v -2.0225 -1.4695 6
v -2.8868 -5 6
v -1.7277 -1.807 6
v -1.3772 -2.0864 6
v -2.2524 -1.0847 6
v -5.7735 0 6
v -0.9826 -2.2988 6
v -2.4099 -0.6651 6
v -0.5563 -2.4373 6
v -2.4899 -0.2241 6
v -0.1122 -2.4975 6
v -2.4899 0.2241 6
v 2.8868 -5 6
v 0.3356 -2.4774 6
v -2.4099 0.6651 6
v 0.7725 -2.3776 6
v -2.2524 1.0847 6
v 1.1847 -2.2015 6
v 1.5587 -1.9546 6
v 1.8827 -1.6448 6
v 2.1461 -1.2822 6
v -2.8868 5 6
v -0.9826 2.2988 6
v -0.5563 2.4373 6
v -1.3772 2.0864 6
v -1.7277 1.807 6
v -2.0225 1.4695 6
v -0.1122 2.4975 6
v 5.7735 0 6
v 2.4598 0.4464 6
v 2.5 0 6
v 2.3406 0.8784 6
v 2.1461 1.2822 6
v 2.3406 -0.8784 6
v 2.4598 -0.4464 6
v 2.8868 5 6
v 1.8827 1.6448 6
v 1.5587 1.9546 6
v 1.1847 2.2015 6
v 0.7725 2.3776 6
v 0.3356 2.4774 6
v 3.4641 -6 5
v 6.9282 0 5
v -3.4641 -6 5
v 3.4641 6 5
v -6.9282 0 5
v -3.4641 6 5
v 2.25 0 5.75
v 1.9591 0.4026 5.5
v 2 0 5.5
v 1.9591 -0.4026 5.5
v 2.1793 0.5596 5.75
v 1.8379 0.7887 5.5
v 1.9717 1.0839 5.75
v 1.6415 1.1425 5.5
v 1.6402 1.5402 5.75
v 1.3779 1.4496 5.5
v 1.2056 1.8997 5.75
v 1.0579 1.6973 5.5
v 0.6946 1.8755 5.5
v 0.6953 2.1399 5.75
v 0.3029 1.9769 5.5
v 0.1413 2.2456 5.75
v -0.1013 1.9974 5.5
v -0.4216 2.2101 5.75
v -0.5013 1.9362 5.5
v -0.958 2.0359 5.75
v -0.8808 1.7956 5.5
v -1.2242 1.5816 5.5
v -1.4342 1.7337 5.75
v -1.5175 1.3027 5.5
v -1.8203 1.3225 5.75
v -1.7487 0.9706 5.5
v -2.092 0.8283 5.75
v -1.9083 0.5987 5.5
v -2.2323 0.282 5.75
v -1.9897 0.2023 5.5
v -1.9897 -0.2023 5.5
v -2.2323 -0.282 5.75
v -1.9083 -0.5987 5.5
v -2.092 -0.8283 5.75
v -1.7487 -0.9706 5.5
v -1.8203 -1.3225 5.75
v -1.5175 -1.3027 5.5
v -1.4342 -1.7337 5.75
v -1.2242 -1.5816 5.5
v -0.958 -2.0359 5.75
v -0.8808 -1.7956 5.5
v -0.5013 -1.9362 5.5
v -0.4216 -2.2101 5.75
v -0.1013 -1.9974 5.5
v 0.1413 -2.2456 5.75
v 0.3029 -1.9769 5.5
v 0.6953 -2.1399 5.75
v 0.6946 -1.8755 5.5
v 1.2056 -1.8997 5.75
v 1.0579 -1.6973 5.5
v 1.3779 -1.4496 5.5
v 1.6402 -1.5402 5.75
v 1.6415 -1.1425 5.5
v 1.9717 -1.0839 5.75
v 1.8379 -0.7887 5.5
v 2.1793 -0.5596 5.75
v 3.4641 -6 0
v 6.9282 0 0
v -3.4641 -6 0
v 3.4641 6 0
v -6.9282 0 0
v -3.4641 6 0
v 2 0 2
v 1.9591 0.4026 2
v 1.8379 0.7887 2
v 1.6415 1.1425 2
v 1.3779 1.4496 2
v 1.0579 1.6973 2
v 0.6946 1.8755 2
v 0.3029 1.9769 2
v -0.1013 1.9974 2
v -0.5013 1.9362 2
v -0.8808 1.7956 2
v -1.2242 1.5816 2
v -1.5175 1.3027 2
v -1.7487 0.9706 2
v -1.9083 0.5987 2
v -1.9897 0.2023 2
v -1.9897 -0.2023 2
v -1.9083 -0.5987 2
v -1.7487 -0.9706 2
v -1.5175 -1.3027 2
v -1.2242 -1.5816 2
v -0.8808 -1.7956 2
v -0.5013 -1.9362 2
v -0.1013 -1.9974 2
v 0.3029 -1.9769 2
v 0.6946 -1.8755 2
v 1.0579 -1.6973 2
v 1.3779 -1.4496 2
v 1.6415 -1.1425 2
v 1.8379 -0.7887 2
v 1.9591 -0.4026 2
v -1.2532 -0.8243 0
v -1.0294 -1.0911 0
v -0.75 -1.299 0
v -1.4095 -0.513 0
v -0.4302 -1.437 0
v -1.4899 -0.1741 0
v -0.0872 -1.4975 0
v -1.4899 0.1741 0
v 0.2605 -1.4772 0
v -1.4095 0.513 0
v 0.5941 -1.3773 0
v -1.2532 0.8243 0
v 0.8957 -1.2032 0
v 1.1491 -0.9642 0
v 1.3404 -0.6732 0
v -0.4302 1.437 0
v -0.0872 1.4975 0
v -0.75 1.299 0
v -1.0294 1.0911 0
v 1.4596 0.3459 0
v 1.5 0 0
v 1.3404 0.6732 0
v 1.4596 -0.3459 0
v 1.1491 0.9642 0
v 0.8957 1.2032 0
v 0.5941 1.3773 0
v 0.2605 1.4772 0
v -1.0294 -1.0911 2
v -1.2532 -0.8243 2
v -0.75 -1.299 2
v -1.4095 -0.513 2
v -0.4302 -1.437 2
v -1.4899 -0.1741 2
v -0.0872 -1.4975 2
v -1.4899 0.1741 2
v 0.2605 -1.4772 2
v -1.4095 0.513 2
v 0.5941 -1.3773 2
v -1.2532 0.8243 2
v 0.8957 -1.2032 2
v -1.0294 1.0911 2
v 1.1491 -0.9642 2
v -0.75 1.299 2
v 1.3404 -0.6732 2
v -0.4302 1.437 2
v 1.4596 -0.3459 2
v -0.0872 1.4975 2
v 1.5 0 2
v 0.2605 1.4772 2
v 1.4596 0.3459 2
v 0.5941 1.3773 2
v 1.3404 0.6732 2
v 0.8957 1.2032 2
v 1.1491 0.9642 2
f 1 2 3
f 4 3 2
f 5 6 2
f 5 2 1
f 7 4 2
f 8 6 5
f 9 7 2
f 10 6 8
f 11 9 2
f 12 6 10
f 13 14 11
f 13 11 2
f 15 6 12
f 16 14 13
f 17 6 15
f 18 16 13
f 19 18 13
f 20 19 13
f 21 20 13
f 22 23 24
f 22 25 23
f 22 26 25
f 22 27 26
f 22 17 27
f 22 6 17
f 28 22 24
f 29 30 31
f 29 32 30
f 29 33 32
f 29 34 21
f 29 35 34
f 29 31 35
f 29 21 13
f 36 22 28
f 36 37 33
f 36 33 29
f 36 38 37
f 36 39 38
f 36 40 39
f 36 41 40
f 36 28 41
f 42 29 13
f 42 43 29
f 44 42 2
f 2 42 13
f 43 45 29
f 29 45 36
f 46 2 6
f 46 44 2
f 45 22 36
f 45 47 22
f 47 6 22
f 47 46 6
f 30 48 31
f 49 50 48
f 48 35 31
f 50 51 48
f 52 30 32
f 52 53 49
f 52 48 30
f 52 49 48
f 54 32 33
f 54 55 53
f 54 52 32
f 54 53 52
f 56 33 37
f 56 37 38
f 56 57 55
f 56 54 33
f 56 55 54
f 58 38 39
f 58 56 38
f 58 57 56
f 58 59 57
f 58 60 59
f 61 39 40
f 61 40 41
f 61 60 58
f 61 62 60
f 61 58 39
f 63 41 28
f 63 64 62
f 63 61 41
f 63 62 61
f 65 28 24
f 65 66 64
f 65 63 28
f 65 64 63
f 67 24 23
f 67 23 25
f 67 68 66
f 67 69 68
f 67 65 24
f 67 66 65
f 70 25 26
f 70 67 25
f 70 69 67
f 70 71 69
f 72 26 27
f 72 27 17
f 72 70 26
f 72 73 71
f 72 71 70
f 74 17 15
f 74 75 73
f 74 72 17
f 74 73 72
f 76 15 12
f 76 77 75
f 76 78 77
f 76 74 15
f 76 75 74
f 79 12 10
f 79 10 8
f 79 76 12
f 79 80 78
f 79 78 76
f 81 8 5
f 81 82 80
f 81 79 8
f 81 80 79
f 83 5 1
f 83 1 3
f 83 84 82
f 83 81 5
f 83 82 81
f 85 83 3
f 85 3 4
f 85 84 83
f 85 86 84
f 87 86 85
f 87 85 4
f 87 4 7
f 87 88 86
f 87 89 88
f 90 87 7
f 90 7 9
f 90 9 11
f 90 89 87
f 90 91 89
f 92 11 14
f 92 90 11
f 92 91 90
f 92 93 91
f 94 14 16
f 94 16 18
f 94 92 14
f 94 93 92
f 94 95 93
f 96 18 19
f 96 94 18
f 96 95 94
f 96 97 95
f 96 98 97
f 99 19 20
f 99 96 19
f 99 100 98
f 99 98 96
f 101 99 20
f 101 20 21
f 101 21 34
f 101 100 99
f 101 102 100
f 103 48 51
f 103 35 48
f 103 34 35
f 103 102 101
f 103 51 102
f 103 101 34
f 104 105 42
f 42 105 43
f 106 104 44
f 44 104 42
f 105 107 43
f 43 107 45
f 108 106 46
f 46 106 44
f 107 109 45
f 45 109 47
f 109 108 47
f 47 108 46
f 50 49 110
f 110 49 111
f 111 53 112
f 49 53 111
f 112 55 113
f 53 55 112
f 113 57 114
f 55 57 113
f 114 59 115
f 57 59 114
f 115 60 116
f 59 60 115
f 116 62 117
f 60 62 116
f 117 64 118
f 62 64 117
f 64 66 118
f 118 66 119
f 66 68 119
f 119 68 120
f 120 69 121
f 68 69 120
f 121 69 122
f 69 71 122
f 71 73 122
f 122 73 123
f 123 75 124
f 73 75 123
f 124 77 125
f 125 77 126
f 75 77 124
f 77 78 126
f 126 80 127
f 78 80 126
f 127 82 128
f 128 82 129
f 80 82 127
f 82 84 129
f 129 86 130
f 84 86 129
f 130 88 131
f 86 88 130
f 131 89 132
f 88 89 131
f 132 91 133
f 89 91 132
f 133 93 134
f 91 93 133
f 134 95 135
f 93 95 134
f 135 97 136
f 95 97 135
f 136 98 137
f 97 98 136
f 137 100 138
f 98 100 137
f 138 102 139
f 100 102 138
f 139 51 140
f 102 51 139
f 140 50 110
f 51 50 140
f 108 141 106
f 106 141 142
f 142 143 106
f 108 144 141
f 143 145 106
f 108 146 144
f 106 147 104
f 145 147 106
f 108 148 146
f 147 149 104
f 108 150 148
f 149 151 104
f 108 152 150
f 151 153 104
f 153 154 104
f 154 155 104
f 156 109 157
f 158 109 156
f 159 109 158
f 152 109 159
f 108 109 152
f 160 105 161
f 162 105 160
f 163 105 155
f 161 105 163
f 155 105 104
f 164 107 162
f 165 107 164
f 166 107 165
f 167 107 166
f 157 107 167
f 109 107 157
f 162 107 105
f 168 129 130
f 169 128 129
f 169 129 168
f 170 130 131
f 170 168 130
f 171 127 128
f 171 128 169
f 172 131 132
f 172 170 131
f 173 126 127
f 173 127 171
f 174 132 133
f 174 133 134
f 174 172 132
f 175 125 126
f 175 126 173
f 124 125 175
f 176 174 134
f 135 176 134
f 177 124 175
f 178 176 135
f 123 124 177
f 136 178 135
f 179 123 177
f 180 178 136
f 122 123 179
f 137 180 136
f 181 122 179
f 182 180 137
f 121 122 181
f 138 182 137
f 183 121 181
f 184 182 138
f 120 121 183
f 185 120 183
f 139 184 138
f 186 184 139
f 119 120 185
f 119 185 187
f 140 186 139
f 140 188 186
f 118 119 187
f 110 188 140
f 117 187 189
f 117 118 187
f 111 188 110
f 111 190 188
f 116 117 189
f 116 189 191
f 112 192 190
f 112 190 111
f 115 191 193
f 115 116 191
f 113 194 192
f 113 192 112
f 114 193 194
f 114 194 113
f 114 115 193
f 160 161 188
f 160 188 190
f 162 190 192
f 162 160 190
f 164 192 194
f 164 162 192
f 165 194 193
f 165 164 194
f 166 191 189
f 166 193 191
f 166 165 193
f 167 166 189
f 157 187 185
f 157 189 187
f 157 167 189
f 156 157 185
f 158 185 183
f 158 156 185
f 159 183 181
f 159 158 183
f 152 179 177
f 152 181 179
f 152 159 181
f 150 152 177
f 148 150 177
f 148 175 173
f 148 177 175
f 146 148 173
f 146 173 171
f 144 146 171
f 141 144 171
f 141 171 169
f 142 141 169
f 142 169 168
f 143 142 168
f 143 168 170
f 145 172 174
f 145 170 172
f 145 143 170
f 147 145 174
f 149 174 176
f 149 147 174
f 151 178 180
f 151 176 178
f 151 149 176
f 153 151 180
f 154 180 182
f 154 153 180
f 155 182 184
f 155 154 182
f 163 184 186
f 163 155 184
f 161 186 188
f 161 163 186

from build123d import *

# Parameters (mm, degrees)
SKETCH_R        = 1.5
PAD_DEPTH       = 6
SKETCH001_R     = 2
POCKET_DEPTH    = 4
CHAMFER_SIZE    = 0.5
CHAMFER001_SIZE = 1


with BuildPart() as part:
    # Sketch → Pad (new body)
    with BuildSketch(Plane.XY):
        Polygon((3.464102, 6), (-3.464102, 6), (-6.928203, 0), (-3.464102, -6), (3.464102, -6), (6.928203, 0), align=None)
        Circle(SKETCH_R, mode=Mode.SUBTRACT)
    extrude(amount=PAD_DEPTH)

    # Sketch001 (on Face9 of Pad) → Pocket (cut)
    with BuildSketch(Plane.XY.offset(6)):
        Circle(SKETCH001_R)
    extrude(amount=-POCKET_DEPTH, mode=Mode.SUBTRACT)

    # Chamfer
    chamfer_edges = [part.edges().sort_by_distance(p)[0] for p in [
        (-2, 0, 6),
    ]]
    chamfer(chamfer_edges, length=CHAMFER_SIZE)

    # Chamfer001
    chamfer001_edges = [part.edges().sort_by_distance(p)[0] for p in [
        (5.196152, -3, 6),
        (5.196152, 3, 6),
        (0, 6, 6),
        (-5.196152, 3, 6),
        (-5.196152, -3, 6),
        (0, -6, 6),
    ]]
    chamfer(chamfer001_edges, length=CHAMFER001_SIZE)


solid = part.part
